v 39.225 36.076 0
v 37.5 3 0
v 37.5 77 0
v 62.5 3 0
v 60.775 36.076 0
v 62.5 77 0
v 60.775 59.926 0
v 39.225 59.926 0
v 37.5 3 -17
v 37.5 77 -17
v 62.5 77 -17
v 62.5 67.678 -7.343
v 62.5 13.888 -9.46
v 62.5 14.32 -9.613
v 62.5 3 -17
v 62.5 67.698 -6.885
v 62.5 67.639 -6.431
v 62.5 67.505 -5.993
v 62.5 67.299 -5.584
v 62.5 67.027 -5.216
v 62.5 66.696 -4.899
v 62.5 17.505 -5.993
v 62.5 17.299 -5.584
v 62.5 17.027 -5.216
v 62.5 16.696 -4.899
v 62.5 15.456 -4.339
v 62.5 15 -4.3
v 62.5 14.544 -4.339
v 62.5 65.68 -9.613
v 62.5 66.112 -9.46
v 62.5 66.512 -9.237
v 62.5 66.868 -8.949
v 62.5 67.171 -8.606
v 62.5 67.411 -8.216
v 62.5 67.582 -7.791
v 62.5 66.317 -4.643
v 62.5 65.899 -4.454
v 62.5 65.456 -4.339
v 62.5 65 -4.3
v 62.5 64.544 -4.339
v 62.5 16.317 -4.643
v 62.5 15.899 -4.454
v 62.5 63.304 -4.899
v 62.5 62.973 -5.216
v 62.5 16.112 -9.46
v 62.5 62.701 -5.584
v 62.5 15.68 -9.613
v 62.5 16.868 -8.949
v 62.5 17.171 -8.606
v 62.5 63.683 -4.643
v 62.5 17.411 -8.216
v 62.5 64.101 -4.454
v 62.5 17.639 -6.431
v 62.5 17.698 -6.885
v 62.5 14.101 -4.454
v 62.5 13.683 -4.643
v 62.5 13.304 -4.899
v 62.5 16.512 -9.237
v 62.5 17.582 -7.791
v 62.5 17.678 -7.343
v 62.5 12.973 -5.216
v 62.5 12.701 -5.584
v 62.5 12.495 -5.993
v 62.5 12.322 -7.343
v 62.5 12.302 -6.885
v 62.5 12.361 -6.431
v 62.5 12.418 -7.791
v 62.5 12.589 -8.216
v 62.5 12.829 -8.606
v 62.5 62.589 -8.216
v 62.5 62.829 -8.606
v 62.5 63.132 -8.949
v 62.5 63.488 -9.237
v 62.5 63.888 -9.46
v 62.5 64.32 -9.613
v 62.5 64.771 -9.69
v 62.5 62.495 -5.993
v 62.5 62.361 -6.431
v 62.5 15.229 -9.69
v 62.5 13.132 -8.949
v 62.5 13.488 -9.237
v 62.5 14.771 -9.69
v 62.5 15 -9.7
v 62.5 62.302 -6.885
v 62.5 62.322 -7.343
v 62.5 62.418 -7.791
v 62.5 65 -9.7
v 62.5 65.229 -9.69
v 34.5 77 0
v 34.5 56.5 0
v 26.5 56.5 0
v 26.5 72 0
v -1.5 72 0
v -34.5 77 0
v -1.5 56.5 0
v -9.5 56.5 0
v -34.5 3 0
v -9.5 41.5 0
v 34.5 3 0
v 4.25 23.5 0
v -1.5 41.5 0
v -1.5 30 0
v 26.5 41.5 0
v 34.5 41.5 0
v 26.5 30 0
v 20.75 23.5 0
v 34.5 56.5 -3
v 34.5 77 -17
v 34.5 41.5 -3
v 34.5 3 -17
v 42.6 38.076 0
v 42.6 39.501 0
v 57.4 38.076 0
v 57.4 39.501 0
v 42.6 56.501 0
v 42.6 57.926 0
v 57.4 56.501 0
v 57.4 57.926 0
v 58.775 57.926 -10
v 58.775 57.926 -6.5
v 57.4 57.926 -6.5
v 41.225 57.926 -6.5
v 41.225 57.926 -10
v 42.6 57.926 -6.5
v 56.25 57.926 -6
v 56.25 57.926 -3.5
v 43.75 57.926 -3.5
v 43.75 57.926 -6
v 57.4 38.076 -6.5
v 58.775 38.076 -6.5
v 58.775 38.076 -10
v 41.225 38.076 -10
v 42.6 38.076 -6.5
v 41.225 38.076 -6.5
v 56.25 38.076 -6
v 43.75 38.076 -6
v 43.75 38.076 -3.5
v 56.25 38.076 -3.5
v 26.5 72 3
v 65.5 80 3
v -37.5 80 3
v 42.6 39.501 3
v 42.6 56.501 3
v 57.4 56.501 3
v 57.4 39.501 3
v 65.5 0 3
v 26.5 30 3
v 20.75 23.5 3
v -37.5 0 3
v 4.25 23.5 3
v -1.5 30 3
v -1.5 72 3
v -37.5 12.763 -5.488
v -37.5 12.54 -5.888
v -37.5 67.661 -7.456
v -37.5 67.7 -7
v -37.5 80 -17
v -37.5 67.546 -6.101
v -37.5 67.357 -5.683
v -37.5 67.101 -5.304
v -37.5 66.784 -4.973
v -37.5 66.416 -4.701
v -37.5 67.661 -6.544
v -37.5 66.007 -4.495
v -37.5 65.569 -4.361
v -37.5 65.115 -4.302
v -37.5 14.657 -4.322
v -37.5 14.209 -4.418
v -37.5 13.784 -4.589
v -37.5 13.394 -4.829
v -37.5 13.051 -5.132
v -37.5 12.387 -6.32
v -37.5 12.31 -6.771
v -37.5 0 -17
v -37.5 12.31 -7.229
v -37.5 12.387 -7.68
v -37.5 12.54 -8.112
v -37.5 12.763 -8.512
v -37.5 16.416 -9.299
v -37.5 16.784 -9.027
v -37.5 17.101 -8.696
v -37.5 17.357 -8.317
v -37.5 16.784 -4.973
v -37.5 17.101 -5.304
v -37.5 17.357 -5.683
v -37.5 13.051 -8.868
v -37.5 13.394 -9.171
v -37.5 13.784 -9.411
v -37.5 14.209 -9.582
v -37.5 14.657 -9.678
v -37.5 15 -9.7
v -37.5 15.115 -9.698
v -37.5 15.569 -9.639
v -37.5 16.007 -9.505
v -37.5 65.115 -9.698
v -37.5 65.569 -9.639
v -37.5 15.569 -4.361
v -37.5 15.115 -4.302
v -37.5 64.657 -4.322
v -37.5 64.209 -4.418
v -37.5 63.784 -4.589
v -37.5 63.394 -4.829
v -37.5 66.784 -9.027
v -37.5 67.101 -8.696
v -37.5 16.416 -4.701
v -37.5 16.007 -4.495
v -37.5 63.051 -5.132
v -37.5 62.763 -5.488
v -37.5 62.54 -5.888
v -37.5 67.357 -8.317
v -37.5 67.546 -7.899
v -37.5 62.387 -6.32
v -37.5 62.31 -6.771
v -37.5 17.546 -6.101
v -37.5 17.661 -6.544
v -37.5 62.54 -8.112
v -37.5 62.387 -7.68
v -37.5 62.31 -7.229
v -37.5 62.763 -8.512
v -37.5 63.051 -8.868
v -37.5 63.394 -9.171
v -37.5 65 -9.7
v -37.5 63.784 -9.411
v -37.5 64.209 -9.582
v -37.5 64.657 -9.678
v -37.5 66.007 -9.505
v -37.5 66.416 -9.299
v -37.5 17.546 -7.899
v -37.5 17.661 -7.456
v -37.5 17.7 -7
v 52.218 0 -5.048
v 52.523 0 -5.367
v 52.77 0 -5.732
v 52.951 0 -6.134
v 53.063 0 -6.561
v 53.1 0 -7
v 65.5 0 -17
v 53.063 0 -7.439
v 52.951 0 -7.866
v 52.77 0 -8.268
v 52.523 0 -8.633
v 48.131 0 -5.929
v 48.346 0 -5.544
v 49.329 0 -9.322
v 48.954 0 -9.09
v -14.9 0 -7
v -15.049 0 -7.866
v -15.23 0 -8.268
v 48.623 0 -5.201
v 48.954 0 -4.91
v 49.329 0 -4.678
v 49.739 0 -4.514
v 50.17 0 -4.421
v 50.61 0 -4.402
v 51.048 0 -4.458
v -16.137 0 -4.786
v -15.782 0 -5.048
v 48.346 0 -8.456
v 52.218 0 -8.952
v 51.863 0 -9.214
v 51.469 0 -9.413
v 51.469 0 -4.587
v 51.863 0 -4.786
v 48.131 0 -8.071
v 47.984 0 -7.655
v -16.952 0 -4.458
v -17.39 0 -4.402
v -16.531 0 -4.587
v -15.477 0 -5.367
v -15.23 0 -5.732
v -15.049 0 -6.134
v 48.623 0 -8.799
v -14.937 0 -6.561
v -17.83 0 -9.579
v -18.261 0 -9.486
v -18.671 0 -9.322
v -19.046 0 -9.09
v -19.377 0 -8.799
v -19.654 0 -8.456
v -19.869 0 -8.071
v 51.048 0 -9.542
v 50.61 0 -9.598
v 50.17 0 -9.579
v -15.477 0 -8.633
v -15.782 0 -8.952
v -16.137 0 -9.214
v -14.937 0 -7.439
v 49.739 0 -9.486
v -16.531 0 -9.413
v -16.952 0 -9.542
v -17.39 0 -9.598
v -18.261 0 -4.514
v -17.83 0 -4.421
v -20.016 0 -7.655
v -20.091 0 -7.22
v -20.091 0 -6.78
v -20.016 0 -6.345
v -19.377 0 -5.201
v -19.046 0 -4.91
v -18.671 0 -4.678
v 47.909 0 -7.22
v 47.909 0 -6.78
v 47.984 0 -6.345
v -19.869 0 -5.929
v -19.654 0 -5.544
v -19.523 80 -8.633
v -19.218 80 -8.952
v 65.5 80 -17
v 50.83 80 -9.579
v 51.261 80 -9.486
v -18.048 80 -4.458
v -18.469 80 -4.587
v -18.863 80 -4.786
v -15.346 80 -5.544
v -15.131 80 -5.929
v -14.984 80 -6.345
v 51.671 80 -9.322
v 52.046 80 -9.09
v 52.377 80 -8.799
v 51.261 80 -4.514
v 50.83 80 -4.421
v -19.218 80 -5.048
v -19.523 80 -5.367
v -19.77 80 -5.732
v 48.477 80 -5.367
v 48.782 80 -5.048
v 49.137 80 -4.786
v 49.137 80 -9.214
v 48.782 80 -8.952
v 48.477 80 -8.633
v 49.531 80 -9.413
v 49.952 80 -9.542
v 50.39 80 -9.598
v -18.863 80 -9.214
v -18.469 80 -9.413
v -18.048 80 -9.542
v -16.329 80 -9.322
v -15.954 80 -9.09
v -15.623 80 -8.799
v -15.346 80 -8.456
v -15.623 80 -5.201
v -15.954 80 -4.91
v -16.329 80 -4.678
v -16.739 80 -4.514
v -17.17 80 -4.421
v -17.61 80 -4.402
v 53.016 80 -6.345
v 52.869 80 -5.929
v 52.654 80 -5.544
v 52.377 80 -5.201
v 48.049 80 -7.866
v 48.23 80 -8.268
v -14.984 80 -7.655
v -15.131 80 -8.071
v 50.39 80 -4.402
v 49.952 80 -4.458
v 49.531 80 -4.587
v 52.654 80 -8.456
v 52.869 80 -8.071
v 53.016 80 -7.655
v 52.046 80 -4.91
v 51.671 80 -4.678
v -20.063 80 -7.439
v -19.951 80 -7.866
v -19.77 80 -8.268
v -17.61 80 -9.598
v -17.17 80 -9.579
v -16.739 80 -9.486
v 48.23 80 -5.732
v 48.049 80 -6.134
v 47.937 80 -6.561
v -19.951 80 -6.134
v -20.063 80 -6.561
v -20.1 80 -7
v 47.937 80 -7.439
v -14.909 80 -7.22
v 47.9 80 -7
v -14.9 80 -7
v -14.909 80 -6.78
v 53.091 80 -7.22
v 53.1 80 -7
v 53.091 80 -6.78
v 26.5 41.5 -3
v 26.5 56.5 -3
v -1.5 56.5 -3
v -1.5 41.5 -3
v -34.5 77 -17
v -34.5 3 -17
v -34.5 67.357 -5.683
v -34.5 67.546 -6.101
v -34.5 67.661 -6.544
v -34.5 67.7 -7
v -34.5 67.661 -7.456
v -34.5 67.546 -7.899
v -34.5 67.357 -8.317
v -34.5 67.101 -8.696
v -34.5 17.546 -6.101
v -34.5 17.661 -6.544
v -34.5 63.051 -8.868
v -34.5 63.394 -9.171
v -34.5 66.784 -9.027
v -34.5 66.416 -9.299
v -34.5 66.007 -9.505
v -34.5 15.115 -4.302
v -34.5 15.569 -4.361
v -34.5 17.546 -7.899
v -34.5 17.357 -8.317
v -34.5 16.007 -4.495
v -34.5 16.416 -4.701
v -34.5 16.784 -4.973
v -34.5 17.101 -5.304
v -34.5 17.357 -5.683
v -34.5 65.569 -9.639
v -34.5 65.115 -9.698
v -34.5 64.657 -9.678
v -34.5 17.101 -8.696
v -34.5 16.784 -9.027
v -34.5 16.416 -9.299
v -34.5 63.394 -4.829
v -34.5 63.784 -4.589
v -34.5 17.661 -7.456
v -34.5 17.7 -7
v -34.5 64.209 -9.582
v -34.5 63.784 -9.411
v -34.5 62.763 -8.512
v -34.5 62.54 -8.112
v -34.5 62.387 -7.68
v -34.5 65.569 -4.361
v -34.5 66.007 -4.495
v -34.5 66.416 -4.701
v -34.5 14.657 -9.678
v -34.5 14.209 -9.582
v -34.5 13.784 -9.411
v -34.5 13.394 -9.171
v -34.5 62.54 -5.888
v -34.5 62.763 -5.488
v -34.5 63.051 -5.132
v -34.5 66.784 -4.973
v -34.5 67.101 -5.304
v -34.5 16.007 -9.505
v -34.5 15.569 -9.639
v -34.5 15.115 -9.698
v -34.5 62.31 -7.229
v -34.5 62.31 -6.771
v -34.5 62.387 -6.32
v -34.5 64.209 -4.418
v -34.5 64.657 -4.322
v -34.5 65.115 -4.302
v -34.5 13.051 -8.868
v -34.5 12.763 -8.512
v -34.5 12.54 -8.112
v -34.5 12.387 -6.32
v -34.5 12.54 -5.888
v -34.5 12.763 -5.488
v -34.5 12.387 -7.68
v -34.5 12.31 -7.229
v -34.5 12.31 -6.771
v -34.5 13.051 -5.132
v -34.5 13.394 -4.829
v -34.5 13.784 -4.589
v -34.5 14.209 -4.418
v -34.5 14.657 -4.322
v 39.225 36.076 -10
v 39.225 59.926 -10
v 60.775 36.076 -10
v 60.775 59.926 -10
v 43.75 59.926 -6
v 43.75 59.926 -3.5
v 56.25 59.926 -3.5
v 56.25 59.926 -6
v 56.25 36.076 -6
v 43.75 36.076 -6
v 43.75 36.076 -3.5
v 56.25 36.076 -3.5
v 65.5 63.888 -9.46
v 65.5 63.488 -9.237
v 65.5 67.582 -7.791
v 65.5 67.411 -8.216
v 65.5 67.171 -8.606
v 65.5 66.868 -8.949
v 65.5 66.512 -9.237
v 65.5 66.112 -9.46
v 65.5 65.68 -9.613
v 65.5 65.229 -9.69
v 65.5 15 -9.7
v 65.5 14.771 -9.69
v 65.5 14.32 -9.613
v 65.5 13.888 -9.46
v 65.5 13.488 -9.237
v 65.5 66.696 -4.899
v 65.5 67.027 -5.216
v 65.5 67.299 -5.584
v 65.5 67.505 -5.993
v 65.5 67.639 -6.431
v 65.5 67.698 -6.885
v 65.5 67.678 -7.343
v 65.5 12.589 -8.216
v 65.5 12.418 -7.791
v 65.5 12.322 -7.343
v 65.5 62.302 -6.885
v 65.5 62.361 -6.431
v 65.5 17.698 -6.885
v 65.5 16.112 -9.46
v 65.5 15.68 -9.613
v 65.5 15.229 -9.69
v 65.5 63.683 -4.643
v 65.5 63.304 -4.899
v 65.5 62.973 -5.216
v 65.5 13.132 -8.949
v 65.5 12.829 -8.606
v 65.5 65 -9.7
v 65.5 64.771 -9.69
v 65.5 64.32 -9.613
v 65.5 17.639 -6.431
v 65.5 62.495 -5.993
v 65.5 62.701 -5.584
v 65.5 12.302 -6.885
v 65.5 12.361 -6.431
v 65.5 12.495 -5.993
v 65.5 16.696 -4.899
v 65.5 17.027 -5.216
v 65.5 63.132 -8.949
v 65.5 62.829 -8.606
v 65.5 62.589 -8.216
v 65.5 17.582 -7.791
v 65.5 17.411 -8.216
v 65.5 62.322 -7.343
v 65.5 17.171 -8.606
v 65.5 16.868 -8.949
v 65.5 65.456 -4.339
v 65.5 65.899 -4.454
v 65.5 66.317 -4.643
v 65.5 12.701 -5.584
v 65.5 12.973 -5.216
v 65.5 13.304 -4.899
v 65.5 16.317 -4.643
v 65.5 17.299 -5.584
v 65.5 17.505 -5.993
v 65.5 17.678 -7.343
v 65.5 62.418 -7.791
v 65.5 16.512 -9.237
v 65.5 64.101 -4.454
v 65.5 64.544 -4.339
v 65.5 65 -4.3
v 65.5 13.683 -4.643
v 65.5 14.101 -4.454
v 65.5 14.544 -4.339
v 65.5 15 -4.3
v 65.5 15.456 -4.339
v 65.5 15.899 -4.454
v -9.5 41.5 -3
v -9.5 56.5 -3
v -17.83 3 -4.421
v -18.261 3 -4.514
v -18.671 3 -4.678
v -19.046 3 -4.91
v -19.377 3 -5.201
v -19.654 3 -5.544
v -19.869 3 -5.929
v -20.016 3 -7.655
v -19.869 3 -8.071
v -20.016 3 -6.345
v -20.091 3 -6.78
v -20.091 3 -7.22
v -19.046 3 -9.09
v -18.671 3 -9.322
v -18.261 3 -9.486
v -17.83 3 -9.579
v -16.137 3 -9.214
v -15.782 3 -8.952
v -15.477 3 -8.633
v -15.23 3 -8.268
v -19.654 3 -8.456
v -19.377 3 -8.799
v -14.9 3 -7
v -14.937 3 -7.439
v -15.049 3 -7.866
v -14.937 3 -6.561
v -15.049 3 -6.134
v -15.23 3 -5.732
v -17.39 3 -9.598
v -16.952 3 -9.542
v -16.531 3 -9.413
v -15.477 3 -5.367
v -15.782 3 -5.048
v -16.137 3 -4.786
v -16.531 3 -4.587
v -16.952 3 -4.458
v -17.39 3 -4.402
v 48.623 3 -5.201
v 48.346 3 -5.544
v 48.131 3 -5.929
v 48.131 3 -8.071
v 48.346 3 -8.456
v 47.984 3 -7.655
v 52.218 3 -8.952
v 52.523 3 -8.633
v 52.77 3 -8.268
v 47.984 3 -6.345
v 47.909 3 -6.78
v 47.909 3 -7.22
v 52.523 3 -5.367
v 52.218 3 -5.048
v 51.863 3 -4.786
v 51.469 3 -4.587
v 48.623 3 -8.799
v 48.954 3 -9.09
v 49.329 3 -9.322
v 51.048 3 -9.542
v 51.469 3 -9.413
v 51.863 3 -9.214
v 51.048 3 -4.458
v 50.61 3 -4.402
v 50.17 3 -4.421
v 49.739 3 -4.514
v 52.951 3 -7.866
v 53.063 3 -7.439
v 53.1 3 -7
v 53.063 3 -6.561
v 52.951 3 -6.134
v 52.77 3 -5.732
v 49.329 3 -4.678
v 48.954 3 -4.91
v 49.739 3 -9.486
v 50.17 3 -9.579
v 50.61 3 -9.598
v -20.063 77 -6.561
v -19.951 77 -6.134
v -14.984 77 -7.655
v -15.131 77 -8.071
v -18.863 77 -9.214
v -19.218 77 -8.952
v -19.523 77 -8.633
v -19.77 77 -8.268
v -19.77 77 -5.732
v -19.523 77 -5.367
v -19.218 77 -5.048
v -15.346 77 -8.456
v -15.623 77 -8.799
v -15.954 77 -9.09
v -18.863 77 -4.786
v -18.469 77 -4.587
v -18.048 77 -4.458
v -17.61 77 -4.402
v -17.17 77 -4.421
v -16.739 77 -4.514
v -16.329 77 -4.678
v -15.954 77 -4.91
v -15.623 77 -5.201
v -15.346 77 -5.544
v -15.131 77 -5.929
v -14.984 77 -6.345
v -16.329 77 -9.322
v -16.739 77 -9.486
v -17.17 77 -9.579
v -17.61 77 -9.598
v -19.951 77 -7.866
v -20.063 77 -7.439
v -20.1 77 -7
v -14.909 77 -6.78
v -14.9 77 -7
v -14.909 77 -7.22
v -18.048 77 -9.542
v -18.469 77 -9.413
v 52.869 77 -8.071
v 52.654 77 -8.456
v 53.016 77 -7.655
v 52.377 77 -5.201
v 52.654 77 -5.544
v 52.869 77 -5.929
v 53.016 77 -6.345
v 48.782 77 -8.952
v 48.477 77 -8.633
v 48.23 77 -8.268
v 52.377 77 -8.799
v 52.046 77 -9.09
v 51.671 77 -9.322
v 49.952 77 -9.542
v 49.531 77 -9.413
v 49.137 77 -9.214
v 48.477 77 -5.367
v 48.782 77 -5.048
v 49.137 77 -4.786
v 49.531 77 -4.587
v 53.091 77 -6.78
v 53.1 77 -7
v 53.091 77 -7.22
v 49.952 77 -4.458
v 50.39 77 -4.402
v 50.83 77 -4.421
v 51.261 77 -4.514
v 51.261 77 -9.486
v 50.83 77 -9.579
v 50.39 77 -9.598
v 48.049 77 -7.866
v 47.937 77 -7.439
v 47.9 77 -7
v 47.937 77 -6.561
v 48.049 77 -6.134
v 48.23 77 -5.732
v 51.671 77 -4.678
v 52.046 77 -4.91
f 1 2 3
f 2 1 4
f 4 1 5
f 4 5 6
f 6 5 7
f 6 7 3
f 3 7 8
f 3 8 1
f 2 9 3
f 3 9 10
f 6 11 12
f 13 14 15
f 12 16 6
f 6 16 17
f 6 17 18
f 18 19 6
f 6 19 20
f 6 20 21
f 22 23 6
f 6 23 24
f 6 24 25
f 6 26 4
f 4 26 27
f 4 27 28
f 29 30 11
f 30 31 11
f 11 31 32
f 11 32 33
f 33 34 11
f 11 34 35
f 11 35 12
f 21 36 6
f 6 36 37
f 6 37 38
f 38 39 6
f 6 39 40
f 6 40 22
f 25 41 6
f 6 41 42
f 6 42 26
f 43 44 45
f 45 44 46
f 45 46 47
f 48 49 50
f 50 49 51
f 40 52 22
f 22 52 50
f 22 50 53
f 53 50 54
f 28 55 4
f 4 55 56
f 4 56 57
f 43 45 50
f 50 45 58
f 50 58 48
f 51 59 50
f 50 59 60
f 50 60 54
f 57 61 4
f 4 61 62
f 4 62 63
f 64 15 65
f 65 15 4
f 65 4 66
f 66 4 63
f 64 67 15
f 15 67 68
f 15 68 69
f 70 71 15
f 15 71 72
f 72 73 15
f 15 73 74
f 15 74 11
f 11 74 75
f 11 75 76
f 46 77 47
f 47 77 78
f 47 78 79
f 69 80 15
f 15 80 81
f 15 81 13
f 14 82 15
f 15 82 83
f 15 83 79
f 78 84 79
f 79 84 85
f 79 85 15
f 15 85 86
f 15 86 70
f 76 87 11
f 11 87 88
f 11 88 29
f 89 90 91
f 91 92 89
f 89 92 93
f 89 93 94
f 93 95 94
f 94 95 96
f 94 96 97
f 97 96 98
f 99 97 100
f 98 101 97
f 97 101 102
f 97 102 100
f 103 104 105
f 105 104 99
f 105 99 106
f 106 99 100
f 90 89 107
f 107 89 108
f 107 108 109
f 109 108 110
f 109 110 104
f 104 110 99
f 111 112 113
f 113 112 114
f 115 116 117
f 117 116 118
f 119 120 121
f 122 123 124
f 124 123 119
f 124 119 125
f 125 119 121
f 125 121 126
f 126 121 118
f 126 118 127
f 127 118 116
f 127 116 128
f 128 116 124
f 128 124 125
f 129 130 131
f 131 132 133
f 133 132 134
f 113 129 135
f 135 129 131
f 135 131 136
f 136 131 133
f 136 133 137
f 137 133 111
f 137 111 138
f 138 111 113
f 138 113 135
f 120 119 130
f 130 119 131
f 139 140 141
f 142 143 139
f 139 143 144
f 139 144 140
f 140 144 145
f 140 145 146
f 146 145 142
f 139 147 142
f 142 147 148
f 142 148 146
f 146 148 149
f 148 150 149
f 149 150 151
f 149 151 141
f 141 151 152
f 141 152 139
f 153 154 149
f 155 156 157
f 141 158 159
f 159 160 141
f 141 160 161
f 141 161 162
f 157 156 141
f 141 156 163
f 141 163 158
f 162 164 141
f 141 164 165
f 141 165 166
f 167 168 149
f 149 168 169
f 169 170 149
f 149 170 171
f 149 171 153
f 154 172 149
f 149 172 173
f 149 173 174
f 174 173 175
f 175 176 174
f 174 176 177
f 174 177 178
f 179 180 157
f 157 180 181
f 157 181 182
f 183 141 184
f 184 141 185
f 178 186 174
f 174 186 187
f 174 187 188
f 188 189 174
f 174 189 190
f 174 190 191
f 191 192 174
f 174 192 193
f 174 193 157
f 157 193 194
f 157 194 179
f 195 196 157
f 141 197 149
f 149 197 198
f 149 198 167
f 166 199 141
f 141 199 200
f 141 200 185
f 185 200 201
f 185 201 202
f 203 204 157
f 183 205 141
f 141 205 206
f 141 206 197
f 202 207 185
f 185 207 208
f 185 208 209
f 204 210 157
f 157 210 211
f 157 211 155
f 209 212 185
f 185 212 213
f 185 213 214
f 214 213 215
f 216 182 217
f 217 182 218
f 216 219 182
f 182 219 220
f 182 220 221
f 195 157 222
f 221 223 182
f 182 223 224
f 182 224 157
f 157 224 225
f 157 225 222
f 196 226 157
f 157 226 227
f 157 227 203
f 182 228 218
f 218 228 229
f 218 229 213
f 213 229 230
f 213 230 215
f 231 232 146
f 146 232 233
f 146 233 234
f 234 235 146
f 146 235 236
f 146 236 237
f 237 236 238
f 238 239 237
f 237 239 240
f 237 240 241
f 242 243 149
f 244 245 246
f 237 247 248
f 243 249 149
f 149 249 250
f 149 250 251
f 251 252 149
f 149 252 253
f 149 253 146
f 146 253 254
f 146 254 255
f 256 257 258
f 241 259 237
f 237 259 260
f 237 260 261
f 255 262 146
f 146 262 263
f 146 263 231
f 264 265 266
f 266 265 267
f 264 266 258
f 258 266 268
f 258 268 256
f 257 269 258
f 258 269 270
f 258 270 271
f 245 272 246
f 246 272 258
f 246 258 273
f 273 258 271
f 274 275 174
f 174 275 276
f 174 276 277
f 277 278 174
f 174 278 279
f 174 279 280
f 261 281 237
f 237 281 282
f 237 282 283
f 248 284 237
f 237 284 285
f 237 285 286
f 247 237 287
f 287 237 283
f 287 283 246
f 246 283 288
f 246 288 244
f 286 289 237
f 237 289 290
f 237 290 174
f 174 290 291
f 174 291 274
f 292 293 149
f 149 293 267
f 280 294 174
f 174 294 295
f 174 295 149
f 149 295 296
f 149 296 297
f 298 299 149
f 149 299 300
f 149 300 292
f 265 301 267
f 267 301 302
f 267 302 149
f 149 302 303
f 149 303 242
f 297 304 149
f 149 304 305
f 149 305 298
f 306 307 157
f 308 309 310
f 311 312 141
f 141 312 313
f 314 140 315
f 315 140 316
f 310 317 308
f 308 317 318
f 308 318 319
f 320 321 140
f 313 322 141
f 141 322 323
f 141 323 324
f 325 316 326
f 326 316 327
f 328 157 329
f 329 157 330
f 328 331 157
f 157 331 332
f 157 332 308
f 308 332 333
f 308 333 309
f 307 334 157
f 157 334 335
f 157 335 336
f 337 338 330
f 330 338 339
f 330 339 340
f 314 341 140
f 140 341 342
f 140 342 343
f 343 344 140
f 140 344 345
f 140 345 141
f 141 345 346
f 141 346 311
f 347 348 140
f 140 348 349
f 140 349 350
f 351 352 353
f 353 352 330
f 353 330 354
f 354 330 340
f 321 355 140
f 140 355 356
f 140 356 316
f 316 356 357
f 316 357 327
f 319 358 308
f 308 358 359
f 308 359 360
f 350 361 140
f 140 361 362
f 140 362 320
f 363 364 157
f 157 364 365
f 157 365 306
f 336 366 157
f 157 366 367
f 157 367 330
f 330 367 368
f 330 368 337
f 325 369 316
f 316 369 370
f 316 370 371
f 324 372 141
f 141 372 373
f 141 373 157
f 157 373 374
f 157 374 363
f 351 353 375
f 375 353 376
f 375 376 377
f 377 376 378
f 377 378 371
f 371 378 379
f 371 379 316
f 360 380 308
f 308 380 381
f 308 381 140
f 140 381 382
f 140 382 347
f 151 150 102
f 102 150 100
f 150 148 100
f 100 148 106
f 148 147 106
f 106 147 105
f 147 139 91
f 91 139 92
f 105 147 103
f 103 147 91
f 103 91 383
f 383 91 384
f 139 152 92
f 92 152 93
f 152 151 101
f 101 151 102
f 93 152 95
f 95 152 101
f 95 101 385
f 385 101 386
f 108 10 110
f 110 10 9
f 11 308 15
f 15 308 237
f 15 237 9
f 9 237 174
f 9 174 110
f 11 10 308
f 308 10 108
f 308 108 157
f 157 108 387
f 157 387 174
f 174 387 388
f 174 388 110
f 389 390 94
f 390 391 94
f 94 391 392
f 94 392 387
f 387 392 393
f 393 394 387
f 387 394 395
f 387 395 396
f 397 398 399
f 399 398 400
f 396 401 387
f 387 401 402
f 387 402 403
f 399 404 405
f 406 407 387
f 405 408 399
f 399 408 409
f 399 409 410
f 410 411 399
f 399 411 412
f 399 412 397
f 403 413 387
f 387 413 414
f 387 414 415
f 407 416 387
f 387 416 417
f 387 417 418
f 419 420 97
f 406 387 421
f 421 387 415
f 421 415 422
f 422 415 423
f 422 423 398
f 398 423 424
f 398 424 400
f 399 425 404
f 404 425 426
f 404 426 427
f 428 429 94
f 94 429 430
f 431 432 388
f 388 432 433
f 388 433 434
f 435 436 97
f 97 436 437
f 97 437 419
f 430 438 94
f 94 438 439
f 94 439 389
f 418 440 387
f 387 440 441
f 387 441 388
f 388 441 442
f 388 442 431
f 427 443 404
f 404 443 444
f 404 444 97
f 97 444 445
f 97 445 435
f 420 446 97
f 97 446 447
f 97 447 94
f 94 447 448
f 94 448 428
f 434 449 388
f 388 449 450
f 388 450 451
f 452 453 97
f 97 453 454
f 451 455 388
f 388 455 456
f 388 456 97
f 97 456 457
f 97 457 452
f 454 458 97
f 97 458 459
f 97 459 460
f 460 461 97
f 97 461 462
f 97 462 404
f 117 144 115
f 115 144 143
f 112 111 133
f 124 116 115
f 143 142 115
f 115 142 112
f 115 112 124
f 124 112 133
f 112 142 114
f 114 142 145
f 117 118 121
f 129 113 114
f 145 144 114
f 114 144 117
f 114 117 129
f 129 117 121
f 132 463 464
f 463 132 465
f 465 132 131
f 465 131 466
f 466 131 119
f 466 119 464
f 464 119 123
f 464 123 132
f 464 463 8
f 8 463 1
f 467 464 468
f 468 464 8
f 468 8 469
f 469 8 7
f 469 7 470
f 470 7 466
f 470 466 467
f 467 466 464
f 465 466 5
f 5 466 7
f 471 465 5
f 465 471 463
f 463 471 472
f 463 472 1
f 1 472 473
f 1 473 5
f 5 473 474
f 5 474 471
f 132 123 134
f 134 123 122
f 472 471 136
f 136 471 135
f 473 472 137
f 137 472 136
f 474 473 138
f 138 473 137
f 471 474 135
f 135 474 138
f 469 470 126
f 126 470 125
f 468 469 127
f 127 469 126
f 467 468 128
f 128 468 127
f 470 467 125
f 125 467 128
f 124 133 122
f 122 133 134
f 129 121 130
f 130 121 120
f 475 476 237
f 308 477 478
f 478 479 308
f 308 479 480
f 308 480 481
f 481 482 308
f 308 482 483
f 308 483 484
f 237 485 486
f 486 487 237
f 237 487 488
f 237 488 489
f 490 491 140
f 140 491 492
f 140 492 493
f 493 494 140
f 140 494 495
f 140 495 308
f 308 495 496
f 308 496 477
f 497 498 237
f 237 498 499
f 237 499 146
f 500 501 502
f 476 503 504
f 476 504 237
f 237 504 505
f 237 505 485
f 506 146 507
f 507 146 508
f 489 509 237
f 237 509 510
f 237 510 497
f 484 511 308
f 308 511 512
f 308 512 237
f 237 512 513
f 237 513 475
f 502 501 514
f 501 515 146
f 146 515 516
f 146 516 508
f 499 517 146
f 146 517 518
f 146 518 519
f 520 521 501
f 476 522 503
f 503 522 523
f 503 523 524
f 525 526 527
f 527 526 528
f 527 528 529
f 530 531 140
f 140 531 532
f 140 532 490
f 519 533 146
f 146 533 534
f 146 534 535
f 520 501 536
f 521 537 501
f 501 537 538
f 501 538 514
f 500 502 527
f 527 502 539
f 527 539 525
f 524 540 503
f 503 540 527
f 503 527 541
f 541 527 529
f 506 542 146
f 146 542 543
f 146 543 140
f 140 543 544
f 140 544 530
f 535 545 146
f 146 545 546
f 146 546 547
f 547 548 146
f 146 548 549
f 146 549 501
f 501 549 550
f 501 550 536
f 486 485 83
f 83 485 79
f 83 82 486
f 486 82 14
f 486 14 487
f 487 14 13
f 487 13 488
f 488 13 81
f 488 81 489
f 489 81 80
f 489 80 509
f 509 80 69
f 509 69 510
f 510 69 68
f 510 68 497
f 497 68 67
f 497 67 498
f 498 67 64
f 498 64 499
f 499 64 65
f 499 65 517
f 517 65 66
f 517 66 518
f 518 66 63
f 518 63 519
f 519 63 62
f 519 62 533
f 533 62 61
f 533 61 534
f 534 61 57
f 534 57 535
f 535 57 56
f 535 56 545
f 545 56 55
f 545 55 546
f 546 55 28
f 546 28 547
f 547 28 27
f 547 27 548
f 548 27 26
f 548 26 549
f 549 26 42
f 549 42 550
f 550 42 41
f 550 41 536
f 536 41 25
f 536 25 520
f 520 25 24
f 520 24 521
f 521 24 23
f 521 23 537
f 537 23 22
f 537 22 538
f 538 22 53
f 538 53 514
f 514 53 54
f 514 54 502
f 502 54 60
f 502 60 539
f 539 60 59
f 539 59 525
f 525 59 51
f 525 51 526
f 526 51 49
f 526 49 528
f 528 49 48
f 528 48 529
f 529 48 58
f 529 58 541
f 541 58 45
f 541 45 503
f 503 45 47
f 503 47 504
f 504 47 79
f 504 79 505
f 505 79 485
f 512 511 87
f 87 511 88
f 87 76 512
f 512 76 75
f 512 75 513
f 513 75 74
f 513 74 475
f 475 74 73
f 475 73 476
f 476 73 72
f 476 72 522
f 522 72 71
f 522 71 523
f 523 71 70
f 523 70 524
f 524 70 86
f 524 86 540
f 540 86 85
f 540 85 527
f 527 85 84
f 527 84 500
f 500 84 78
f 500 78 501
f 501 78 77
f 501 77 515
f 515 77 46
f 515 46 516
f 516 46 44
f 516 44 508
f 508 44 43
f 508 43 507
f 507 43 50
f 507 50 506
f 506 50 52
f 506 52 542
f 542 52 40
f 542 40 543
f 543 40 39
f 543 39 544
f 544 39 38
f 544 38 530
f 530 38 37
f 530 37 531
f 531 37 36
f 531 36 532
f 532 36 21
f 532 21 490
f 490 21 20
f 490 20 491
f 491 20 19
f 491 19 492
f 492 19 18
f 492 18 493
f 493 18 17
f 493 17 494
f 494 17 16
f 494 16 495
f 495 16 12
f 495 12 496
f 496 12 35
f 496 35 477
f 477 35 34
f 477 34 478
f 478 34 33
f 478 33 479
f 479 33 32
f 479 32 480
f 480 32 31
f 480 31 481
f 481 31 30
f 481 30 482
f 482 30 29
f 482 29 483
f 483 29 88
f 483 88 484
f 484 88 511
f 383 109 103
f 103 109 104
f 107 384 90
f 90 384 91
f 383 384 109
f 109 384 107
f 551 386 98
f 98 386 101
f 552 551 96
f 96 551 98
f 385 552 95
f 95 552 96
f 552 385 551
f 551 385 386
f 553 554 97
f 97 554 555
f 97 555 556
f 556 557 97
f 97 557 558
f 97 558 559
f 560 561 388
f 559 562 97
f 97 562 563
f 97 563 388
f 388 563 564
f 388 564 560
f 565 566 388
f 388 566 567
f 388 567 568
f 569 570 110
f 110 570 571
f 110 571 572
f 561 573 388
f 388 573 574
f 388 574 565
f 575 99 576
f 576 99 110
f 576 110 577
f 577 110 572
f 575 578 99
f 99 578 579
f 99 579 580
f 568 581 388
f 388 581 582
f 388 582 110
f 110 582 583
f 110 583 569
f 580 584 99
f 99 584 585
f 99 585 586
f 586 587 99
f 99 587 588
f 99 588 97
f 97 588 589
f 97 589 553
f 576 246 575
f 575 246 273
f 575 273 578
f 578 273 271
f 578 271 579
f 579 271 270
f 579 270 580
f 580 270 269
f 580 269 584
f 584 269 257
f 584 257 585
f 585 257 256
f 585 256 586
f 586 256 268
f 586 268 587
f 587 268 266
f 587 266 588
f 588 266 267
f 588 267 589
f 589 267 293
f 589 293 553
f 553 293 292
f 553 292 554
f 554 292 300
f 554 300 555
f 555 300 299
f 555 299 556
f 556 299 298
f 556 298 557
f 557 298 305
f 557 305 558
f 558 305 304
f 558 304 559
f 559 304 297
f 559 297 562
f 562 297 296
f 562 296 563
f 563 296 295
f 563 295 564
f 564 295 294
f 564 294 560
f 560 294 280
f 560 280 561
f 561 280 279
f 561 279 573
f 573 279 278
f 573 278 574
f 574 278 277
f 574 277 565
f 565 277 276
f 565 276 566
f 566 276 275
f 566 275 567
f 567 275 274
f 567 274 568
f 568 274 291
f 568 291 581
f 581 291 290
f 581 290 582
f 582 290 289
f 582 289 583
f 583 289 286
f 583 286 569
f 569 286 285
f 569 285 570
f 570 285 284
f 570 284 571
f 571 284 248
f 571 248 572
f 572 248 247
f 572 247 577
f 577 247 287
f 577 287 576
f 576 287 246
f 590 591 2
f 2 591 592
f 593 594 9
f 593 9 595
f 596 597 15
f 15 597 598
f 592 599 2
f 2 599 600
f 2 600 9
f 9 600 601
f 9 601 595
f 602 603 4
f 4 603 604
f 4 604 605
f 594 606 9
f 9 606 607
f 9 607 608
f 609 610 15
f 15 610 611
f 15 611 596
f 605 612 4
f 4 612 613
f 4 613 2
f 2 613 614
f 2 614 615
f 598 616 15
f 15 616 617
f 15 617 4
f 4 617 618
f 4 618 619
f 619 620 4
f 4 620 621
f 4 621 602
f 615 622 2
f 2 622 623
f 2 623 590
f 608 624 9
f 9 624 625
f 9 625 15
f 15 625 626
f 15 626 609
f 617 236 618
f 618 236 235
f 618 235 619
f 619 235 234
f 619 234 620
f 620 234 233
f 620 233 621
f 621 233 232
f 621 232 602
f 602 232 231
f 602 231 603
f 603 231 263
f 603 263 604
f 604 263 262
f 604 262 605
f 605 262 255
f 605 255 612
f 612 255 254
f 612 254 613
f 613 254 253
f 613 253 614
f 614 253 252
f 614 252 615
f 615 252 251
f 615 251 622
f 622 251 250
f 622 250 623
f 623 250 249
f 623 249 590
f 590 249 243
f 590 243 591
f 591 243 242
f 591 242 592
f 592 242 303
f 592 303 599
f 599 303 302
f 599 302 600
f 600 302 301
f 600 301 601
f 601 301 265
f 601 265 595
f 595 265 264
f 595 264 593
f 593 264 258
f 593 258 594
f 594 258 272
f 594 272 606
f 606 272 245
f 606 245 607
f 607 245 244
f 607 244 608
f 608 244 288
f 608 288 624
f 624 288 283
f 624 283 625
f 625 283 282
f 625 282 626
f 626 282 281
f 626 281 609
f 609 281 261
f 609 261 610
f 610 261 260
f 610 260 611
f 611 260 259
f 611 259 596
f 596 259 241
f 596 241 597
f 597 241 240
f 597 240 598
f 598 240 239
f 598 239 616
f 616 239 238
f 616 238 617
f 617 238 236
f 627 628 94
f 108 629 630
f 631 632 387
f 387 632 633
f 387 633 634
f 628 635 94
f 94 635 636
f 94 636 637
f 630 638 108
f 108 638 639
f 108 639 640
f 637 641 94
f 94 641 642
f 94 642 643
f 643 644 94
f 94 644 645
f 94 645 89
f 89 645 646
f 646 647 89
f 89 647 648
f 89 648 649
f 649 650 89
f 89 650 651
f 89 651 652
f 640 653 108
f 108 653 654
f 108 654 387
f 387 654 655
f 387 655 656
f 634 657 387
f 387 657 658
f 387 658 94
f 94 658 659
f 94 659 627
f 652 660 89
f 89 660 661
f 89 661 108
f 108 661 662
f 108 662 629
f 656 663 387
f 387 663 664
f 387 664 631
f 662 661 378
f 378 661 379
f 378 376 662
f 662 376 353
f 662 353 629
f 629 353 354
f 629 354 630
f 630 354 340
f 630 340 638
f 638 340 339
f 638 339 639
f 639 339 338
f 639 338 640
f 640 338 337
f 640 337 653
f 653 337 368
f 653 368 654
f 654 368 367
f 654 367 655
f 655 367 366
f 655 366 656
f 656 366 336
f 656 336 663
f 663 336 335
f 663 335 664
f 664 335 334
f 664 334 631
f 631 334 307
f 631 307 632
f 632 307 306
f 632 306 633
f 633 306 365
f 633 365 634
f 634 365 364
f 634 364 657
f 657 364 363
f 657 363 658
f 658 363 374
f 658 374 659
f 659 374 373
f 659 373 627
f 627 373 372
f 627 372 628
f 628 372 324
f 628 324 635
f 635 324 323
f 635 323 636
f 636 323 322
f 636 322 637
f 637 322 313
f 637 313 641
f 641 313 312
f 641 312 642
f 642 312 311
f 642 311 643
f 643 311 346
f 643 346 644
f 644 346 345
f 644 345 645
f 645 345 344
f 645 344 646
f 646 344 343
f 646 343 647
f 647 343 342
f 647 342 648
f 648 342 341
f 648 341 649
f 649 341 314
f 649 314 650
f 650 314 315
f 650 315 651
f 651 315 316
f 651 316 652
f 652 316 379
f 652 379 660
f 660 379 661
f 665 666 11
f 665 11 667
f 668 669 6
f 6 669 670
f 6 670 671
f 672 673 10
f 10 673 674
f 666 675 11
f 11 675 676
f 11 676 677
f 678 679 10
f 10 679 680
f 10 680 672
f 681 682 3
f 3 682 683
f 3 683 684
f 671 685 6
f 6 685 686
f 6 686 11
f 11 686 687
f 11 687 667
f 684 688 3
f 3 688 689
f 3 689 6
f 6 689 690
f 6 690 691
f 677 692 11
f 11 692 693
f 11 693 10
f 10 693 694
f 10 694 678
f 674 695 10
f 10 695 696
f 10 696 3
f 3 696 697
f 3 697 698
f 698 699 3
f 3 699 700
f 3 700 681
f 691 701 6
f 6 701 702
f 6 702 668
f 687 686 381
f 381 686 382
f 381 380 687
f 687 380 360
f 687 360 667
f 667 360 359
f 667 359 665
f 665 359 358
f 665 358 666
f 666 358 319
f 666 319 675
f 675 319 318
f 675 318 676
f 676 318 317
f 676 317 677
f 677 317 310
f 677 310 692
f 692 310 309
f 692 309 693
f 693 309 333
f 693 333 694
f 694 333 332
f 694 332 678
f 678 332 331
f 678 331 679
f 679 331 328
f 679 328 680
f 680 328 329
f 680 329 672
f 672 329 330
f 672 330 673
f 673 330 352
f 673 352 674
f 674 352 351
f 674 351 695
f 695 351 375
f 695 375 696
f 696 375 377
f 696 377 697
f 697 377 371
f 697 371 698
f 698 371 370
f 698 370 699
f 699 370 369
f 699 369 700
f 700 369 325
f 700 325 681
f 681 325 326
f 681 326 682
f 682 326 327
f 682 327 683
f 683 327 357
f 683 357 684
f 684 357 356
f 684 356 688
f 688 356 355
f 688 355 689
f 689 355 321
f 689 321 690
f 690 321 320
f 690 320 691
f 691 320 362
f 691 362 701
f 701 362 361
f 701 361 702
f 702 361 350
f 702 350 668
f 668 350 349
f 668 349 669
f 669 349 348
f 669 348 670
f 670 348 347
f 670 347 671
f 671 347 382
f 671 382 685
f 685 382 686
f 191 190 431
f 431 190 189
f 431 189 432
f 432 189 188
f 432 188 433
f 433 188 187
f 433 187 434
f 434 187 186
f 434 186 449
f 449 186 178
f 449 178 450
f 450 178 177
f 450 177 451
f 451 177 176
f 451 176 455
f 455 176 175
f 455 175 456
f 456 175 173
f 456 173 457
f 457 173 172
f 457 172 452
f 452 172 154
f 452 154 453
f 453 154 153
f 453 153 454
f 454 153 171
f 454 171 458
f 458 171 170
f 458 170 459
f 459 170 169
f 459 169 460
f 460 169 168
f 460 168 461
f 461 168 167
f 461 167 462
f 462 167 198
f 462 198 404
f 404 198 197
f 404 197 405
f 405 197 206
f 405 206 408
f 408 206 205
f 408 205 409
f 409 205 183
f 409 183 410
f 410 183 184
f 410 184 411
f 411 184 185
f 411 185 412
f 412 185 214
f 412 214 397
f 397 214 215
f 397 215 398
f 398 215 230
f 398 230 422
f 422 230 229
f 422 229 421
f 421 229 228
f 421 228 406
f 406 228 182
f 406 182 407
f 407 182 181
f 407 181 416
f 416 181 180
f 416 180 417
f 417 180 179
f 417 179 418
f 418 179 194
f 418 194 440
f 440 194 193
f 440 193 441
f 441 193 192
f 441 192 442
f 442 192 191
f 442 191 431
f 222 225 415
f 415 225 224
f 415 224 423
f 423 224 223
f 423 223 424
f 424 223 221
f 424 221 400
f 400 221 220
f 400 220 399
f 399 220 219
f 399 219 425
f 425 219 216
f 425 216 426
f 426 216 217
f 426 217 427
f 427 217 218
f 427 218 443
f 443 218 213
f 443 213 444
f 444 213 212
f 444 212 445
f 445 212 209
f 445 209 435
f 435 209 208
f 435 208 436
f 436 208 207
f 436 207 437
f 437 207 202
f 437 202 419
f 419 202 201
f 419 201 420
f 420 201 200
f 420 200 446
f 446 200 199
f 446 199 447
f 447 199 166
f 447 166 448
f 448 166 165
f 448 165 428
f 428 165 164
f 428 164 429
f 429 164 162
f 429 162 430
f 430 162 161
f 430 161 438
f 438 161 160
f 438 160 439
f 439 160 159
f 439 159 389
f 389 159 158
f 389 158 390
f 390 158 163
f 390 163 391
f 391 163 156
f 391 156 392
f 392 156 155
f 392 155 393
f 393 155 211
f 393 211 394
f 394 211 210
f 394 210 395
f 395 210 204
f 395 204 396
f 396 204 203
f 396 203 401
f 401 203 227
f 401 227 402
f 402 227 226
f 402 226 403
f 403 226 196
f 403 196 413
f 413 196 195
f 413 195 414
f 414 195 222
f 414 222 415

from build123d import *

# Parameters (mm, degrees)
SKETCH1_W           = 75
SKETCH1_H           = 80
BOSS_EXTRUDE1_DEPTH = 3
SKETCH2_W           = 17
SKETCH2_H           = 80
BOSS_EXTRUDE2_DEPTH = 3
SKETCH7_W           = 25
SKETCH7_H           = 80
SKETCH7_W_2         = 14.8
SKETCH7_H_2         = 17
BOSS_EXTRUDE6_DEPTH = 3
SKETCH8_W           = 21.55
SKETCH8_H           = 23.85
SKETCH8_W_2         = 17.55
SKETCH8_H_2         = 19.85
BOSS_EXTRUDE7_DEPTH = 10
SKETCH9_W           = 12.5
SKETCH9_H           = 2.5
CUT_EXTRUDE3_DEPTH  = 23.85
SKETCH10_W          = 1.375
SKETCH10_H          = 19.85
BOSS_EXTRUDE8_DEPTH = 6.5
SKETCH11_W          = 20
SKETCH11_H          = 80
SKETCH11_R          = 2.7
BOSS_EXTRUDE9_DEPTH = 3
SKETCH3_W           = 8
SKETCH3_H           = 15
BOSS_EXTRUDE3_DEPTH = 3
SKETCH5_W           = 69
SKETCH5_H           = 17
SKETCH5_R           = 2.6
SKETCH5_W_2         = 25
BOSS_EXTRUDE4_DEPTH = 3
SKETCH21_R          = 2.7
CUT_EXTRUDE5_DEPTH  = 3


with BuildPart() as part:
    # Sketch1 → Boss-Extrude1 (new body)
    with BuildSketch(Plane.XY):
        with Locations((0, 40)):
            Rectangle(SKETCH1_W, SKETCH1_H)
        Polygon((4.25, 23.5), (20.75, 23.5), (26.5, 30), (26.5, 72), (-1.5, 72), (-1.5, 30), align=None, mode=Mode.SUBTRACT)
    extrude(amount=BOSS_EXTRUDE1_DEPTH)

    # Sketch2 → Boss-Extrude2 (add)
    with BuildSketch(Plane(origin=(37.5, 0, 0), x_dir=(0, 0, -1), z_dir=(1, 0, 0))):
        with Locations((8.5, 40)):
            Rectangle(SKETCH2_W, SKETCH2_H)
    boss_extrude2 = extrude(amount=-BOSS_EXTRUDE2_DEPTH)

    # Mirror1: Boss-Extrude2 across plane
    add(boss_extrude2.mirror(Plane(origin=(0, 0, 0), x_dir=(0, 0, 1), z_dir=(1, 0, 0))))

    # Sketch7 → Boss-Extrude6 (add)
    with BuildSketch(Plane.XY.offset(3)):
        with Locations((50, 40)):
            Rectangle(SKETCH7_W, SKETCH7_H)
        with Locations((50, 48.001193432)):
            Rectangle(SKETCH7_W_2, SKETCH7_H_2, mode=Mode.SUBTRACT)
    extrude(amount=-BOSS_EXTRUDE6_DEPTH)

    # Sketch8 → Boss-Extrude7 (add)
    with BuildSketch(Plane(origin=(0, 0, 0), x_dir=(-1, 0, 0), z_dir=(0, 0, -1))):
        with Locations((-50, 48.001193432)):
            Rectangle(SKETCH8_W, SKETCH8_H)
        with Locations((-50, 48.001193432)):
            Rectangle(SKETCH8_W_2, SKETCH8_H_2, mode=Mode.SUBTRACT)
    extrude(amount=BOSS_EXTRUDE7_DEPTH)

    # Sketch9 → Cut-Extrude3 (cut)
    with BuildSketch(Plane(origin=(0, 59.926193432, 0), x_dir=(1, 0, 0), z_dir=(0, 1, 0))):
        with Locations((50, 4.75)):
            Rectangle(SKETCH9_W, SKETCH9_H)
    extrude(amount=-CUT_EXTRUDE3_DEPTH, mode=Mode.SUBTRACT)

    # Sketch10 → Boss-Extrude8 (add)
    with BuildSketch(Plane(origin=(0, 0, 0), x_dir=(-1, 0, 0), z_dir=(0, 0, -1))):
        with Locations((-41.9125, 48.001193432)):
            Rectangle(SKETCH10_W, SKETCH10_H)
        with Locations((-58.0875, 48.001193432)):
            Rectangle(SKETCH10_W, SKETCH10_H)
    extrude(amount=BOSS_EXTRUDE8_DEPTH)

    # Sketch11 → Boss-Extrude9 (add)
    with BuildSketch(Plane(origin=(62.5, 0, 0), x_dir=(0, 0, -1), z_dir=(1, 0, 0))):
        with Locations((7, 40)):
            Rectangle(SKETCH11_W, SKETCH11_H)
        with Locations((7, 15)):
            Circle(SKETCH11_R, mode=Mode.SUBTRACT)
        with Locations((7, 65)):
            Circle(SKETCH11_R, mode=Mode.SUBTRACT)
    extrude(amount=BOSS_EXTRUDE9_DEPTH)

    # Sketch3 → Boss-Extrude3 (add)
    with BuildSketch(Plane(origin=(0, 0, 0), x_dir=(-1, 0, 0), z_dir=(0, 0, -1))):
        with Locations((-30.5, 49)):
            Rectangle(SKETCH3_W, SKETCH3_H)
        with Locations((5.5, 49)):
            Rectangle(SKETCH3_W, SKETCH3_H)
    extrude(amount=BOSS_EXTRUDE3_DEPTH)

    # Sketch5 → Boss-Extrude4 (add)
    with BuildSketch(Plane.XZ):
        with Locations((0, -8.5)):
            Rectangle(SKETCH5_W, SKETCH5_H)
        with Locations((-17.5, -7)):
            Circle(SKETCH5_R, mode=Mode.SUBTRACT)
        with Locations((50, -8.5)):
            Rectangle(SKETCH5_W_2, SKETCH5_H)
        with Locations((50.5, -7)):
            Circle(SKETCH5_R, mode=Mode.SUBTRACT)
    boss_extrude4 = extrude(amount=-BOSS_EXTRUDE4_DEPTH)

    # Mirror2: Boss-Extrude4 across plane
    add(boss_extrude4.mirror(Plane(origin=(0, 40, 0), x_dir=(0, 0, 1), z_dir=(0, -1, 0))))

    # Sketch21 → Cut-Extrude5 (cut)
    with BuildSketch(Plane(origin=(-34.5, 0, 0), x_dir=(0, 0, -1), z_dir=(1, 0, 0))):
        with Locations((7, 15)):
            Circle(SKETCH21_R)
        with Locations((7, 65)):
            Circle(SKETCH21_R)
    extrude(amount=-CUT_EXTRUDE5_DEPTH, mode=Mode.SUBTRACT)


solid = part.part
